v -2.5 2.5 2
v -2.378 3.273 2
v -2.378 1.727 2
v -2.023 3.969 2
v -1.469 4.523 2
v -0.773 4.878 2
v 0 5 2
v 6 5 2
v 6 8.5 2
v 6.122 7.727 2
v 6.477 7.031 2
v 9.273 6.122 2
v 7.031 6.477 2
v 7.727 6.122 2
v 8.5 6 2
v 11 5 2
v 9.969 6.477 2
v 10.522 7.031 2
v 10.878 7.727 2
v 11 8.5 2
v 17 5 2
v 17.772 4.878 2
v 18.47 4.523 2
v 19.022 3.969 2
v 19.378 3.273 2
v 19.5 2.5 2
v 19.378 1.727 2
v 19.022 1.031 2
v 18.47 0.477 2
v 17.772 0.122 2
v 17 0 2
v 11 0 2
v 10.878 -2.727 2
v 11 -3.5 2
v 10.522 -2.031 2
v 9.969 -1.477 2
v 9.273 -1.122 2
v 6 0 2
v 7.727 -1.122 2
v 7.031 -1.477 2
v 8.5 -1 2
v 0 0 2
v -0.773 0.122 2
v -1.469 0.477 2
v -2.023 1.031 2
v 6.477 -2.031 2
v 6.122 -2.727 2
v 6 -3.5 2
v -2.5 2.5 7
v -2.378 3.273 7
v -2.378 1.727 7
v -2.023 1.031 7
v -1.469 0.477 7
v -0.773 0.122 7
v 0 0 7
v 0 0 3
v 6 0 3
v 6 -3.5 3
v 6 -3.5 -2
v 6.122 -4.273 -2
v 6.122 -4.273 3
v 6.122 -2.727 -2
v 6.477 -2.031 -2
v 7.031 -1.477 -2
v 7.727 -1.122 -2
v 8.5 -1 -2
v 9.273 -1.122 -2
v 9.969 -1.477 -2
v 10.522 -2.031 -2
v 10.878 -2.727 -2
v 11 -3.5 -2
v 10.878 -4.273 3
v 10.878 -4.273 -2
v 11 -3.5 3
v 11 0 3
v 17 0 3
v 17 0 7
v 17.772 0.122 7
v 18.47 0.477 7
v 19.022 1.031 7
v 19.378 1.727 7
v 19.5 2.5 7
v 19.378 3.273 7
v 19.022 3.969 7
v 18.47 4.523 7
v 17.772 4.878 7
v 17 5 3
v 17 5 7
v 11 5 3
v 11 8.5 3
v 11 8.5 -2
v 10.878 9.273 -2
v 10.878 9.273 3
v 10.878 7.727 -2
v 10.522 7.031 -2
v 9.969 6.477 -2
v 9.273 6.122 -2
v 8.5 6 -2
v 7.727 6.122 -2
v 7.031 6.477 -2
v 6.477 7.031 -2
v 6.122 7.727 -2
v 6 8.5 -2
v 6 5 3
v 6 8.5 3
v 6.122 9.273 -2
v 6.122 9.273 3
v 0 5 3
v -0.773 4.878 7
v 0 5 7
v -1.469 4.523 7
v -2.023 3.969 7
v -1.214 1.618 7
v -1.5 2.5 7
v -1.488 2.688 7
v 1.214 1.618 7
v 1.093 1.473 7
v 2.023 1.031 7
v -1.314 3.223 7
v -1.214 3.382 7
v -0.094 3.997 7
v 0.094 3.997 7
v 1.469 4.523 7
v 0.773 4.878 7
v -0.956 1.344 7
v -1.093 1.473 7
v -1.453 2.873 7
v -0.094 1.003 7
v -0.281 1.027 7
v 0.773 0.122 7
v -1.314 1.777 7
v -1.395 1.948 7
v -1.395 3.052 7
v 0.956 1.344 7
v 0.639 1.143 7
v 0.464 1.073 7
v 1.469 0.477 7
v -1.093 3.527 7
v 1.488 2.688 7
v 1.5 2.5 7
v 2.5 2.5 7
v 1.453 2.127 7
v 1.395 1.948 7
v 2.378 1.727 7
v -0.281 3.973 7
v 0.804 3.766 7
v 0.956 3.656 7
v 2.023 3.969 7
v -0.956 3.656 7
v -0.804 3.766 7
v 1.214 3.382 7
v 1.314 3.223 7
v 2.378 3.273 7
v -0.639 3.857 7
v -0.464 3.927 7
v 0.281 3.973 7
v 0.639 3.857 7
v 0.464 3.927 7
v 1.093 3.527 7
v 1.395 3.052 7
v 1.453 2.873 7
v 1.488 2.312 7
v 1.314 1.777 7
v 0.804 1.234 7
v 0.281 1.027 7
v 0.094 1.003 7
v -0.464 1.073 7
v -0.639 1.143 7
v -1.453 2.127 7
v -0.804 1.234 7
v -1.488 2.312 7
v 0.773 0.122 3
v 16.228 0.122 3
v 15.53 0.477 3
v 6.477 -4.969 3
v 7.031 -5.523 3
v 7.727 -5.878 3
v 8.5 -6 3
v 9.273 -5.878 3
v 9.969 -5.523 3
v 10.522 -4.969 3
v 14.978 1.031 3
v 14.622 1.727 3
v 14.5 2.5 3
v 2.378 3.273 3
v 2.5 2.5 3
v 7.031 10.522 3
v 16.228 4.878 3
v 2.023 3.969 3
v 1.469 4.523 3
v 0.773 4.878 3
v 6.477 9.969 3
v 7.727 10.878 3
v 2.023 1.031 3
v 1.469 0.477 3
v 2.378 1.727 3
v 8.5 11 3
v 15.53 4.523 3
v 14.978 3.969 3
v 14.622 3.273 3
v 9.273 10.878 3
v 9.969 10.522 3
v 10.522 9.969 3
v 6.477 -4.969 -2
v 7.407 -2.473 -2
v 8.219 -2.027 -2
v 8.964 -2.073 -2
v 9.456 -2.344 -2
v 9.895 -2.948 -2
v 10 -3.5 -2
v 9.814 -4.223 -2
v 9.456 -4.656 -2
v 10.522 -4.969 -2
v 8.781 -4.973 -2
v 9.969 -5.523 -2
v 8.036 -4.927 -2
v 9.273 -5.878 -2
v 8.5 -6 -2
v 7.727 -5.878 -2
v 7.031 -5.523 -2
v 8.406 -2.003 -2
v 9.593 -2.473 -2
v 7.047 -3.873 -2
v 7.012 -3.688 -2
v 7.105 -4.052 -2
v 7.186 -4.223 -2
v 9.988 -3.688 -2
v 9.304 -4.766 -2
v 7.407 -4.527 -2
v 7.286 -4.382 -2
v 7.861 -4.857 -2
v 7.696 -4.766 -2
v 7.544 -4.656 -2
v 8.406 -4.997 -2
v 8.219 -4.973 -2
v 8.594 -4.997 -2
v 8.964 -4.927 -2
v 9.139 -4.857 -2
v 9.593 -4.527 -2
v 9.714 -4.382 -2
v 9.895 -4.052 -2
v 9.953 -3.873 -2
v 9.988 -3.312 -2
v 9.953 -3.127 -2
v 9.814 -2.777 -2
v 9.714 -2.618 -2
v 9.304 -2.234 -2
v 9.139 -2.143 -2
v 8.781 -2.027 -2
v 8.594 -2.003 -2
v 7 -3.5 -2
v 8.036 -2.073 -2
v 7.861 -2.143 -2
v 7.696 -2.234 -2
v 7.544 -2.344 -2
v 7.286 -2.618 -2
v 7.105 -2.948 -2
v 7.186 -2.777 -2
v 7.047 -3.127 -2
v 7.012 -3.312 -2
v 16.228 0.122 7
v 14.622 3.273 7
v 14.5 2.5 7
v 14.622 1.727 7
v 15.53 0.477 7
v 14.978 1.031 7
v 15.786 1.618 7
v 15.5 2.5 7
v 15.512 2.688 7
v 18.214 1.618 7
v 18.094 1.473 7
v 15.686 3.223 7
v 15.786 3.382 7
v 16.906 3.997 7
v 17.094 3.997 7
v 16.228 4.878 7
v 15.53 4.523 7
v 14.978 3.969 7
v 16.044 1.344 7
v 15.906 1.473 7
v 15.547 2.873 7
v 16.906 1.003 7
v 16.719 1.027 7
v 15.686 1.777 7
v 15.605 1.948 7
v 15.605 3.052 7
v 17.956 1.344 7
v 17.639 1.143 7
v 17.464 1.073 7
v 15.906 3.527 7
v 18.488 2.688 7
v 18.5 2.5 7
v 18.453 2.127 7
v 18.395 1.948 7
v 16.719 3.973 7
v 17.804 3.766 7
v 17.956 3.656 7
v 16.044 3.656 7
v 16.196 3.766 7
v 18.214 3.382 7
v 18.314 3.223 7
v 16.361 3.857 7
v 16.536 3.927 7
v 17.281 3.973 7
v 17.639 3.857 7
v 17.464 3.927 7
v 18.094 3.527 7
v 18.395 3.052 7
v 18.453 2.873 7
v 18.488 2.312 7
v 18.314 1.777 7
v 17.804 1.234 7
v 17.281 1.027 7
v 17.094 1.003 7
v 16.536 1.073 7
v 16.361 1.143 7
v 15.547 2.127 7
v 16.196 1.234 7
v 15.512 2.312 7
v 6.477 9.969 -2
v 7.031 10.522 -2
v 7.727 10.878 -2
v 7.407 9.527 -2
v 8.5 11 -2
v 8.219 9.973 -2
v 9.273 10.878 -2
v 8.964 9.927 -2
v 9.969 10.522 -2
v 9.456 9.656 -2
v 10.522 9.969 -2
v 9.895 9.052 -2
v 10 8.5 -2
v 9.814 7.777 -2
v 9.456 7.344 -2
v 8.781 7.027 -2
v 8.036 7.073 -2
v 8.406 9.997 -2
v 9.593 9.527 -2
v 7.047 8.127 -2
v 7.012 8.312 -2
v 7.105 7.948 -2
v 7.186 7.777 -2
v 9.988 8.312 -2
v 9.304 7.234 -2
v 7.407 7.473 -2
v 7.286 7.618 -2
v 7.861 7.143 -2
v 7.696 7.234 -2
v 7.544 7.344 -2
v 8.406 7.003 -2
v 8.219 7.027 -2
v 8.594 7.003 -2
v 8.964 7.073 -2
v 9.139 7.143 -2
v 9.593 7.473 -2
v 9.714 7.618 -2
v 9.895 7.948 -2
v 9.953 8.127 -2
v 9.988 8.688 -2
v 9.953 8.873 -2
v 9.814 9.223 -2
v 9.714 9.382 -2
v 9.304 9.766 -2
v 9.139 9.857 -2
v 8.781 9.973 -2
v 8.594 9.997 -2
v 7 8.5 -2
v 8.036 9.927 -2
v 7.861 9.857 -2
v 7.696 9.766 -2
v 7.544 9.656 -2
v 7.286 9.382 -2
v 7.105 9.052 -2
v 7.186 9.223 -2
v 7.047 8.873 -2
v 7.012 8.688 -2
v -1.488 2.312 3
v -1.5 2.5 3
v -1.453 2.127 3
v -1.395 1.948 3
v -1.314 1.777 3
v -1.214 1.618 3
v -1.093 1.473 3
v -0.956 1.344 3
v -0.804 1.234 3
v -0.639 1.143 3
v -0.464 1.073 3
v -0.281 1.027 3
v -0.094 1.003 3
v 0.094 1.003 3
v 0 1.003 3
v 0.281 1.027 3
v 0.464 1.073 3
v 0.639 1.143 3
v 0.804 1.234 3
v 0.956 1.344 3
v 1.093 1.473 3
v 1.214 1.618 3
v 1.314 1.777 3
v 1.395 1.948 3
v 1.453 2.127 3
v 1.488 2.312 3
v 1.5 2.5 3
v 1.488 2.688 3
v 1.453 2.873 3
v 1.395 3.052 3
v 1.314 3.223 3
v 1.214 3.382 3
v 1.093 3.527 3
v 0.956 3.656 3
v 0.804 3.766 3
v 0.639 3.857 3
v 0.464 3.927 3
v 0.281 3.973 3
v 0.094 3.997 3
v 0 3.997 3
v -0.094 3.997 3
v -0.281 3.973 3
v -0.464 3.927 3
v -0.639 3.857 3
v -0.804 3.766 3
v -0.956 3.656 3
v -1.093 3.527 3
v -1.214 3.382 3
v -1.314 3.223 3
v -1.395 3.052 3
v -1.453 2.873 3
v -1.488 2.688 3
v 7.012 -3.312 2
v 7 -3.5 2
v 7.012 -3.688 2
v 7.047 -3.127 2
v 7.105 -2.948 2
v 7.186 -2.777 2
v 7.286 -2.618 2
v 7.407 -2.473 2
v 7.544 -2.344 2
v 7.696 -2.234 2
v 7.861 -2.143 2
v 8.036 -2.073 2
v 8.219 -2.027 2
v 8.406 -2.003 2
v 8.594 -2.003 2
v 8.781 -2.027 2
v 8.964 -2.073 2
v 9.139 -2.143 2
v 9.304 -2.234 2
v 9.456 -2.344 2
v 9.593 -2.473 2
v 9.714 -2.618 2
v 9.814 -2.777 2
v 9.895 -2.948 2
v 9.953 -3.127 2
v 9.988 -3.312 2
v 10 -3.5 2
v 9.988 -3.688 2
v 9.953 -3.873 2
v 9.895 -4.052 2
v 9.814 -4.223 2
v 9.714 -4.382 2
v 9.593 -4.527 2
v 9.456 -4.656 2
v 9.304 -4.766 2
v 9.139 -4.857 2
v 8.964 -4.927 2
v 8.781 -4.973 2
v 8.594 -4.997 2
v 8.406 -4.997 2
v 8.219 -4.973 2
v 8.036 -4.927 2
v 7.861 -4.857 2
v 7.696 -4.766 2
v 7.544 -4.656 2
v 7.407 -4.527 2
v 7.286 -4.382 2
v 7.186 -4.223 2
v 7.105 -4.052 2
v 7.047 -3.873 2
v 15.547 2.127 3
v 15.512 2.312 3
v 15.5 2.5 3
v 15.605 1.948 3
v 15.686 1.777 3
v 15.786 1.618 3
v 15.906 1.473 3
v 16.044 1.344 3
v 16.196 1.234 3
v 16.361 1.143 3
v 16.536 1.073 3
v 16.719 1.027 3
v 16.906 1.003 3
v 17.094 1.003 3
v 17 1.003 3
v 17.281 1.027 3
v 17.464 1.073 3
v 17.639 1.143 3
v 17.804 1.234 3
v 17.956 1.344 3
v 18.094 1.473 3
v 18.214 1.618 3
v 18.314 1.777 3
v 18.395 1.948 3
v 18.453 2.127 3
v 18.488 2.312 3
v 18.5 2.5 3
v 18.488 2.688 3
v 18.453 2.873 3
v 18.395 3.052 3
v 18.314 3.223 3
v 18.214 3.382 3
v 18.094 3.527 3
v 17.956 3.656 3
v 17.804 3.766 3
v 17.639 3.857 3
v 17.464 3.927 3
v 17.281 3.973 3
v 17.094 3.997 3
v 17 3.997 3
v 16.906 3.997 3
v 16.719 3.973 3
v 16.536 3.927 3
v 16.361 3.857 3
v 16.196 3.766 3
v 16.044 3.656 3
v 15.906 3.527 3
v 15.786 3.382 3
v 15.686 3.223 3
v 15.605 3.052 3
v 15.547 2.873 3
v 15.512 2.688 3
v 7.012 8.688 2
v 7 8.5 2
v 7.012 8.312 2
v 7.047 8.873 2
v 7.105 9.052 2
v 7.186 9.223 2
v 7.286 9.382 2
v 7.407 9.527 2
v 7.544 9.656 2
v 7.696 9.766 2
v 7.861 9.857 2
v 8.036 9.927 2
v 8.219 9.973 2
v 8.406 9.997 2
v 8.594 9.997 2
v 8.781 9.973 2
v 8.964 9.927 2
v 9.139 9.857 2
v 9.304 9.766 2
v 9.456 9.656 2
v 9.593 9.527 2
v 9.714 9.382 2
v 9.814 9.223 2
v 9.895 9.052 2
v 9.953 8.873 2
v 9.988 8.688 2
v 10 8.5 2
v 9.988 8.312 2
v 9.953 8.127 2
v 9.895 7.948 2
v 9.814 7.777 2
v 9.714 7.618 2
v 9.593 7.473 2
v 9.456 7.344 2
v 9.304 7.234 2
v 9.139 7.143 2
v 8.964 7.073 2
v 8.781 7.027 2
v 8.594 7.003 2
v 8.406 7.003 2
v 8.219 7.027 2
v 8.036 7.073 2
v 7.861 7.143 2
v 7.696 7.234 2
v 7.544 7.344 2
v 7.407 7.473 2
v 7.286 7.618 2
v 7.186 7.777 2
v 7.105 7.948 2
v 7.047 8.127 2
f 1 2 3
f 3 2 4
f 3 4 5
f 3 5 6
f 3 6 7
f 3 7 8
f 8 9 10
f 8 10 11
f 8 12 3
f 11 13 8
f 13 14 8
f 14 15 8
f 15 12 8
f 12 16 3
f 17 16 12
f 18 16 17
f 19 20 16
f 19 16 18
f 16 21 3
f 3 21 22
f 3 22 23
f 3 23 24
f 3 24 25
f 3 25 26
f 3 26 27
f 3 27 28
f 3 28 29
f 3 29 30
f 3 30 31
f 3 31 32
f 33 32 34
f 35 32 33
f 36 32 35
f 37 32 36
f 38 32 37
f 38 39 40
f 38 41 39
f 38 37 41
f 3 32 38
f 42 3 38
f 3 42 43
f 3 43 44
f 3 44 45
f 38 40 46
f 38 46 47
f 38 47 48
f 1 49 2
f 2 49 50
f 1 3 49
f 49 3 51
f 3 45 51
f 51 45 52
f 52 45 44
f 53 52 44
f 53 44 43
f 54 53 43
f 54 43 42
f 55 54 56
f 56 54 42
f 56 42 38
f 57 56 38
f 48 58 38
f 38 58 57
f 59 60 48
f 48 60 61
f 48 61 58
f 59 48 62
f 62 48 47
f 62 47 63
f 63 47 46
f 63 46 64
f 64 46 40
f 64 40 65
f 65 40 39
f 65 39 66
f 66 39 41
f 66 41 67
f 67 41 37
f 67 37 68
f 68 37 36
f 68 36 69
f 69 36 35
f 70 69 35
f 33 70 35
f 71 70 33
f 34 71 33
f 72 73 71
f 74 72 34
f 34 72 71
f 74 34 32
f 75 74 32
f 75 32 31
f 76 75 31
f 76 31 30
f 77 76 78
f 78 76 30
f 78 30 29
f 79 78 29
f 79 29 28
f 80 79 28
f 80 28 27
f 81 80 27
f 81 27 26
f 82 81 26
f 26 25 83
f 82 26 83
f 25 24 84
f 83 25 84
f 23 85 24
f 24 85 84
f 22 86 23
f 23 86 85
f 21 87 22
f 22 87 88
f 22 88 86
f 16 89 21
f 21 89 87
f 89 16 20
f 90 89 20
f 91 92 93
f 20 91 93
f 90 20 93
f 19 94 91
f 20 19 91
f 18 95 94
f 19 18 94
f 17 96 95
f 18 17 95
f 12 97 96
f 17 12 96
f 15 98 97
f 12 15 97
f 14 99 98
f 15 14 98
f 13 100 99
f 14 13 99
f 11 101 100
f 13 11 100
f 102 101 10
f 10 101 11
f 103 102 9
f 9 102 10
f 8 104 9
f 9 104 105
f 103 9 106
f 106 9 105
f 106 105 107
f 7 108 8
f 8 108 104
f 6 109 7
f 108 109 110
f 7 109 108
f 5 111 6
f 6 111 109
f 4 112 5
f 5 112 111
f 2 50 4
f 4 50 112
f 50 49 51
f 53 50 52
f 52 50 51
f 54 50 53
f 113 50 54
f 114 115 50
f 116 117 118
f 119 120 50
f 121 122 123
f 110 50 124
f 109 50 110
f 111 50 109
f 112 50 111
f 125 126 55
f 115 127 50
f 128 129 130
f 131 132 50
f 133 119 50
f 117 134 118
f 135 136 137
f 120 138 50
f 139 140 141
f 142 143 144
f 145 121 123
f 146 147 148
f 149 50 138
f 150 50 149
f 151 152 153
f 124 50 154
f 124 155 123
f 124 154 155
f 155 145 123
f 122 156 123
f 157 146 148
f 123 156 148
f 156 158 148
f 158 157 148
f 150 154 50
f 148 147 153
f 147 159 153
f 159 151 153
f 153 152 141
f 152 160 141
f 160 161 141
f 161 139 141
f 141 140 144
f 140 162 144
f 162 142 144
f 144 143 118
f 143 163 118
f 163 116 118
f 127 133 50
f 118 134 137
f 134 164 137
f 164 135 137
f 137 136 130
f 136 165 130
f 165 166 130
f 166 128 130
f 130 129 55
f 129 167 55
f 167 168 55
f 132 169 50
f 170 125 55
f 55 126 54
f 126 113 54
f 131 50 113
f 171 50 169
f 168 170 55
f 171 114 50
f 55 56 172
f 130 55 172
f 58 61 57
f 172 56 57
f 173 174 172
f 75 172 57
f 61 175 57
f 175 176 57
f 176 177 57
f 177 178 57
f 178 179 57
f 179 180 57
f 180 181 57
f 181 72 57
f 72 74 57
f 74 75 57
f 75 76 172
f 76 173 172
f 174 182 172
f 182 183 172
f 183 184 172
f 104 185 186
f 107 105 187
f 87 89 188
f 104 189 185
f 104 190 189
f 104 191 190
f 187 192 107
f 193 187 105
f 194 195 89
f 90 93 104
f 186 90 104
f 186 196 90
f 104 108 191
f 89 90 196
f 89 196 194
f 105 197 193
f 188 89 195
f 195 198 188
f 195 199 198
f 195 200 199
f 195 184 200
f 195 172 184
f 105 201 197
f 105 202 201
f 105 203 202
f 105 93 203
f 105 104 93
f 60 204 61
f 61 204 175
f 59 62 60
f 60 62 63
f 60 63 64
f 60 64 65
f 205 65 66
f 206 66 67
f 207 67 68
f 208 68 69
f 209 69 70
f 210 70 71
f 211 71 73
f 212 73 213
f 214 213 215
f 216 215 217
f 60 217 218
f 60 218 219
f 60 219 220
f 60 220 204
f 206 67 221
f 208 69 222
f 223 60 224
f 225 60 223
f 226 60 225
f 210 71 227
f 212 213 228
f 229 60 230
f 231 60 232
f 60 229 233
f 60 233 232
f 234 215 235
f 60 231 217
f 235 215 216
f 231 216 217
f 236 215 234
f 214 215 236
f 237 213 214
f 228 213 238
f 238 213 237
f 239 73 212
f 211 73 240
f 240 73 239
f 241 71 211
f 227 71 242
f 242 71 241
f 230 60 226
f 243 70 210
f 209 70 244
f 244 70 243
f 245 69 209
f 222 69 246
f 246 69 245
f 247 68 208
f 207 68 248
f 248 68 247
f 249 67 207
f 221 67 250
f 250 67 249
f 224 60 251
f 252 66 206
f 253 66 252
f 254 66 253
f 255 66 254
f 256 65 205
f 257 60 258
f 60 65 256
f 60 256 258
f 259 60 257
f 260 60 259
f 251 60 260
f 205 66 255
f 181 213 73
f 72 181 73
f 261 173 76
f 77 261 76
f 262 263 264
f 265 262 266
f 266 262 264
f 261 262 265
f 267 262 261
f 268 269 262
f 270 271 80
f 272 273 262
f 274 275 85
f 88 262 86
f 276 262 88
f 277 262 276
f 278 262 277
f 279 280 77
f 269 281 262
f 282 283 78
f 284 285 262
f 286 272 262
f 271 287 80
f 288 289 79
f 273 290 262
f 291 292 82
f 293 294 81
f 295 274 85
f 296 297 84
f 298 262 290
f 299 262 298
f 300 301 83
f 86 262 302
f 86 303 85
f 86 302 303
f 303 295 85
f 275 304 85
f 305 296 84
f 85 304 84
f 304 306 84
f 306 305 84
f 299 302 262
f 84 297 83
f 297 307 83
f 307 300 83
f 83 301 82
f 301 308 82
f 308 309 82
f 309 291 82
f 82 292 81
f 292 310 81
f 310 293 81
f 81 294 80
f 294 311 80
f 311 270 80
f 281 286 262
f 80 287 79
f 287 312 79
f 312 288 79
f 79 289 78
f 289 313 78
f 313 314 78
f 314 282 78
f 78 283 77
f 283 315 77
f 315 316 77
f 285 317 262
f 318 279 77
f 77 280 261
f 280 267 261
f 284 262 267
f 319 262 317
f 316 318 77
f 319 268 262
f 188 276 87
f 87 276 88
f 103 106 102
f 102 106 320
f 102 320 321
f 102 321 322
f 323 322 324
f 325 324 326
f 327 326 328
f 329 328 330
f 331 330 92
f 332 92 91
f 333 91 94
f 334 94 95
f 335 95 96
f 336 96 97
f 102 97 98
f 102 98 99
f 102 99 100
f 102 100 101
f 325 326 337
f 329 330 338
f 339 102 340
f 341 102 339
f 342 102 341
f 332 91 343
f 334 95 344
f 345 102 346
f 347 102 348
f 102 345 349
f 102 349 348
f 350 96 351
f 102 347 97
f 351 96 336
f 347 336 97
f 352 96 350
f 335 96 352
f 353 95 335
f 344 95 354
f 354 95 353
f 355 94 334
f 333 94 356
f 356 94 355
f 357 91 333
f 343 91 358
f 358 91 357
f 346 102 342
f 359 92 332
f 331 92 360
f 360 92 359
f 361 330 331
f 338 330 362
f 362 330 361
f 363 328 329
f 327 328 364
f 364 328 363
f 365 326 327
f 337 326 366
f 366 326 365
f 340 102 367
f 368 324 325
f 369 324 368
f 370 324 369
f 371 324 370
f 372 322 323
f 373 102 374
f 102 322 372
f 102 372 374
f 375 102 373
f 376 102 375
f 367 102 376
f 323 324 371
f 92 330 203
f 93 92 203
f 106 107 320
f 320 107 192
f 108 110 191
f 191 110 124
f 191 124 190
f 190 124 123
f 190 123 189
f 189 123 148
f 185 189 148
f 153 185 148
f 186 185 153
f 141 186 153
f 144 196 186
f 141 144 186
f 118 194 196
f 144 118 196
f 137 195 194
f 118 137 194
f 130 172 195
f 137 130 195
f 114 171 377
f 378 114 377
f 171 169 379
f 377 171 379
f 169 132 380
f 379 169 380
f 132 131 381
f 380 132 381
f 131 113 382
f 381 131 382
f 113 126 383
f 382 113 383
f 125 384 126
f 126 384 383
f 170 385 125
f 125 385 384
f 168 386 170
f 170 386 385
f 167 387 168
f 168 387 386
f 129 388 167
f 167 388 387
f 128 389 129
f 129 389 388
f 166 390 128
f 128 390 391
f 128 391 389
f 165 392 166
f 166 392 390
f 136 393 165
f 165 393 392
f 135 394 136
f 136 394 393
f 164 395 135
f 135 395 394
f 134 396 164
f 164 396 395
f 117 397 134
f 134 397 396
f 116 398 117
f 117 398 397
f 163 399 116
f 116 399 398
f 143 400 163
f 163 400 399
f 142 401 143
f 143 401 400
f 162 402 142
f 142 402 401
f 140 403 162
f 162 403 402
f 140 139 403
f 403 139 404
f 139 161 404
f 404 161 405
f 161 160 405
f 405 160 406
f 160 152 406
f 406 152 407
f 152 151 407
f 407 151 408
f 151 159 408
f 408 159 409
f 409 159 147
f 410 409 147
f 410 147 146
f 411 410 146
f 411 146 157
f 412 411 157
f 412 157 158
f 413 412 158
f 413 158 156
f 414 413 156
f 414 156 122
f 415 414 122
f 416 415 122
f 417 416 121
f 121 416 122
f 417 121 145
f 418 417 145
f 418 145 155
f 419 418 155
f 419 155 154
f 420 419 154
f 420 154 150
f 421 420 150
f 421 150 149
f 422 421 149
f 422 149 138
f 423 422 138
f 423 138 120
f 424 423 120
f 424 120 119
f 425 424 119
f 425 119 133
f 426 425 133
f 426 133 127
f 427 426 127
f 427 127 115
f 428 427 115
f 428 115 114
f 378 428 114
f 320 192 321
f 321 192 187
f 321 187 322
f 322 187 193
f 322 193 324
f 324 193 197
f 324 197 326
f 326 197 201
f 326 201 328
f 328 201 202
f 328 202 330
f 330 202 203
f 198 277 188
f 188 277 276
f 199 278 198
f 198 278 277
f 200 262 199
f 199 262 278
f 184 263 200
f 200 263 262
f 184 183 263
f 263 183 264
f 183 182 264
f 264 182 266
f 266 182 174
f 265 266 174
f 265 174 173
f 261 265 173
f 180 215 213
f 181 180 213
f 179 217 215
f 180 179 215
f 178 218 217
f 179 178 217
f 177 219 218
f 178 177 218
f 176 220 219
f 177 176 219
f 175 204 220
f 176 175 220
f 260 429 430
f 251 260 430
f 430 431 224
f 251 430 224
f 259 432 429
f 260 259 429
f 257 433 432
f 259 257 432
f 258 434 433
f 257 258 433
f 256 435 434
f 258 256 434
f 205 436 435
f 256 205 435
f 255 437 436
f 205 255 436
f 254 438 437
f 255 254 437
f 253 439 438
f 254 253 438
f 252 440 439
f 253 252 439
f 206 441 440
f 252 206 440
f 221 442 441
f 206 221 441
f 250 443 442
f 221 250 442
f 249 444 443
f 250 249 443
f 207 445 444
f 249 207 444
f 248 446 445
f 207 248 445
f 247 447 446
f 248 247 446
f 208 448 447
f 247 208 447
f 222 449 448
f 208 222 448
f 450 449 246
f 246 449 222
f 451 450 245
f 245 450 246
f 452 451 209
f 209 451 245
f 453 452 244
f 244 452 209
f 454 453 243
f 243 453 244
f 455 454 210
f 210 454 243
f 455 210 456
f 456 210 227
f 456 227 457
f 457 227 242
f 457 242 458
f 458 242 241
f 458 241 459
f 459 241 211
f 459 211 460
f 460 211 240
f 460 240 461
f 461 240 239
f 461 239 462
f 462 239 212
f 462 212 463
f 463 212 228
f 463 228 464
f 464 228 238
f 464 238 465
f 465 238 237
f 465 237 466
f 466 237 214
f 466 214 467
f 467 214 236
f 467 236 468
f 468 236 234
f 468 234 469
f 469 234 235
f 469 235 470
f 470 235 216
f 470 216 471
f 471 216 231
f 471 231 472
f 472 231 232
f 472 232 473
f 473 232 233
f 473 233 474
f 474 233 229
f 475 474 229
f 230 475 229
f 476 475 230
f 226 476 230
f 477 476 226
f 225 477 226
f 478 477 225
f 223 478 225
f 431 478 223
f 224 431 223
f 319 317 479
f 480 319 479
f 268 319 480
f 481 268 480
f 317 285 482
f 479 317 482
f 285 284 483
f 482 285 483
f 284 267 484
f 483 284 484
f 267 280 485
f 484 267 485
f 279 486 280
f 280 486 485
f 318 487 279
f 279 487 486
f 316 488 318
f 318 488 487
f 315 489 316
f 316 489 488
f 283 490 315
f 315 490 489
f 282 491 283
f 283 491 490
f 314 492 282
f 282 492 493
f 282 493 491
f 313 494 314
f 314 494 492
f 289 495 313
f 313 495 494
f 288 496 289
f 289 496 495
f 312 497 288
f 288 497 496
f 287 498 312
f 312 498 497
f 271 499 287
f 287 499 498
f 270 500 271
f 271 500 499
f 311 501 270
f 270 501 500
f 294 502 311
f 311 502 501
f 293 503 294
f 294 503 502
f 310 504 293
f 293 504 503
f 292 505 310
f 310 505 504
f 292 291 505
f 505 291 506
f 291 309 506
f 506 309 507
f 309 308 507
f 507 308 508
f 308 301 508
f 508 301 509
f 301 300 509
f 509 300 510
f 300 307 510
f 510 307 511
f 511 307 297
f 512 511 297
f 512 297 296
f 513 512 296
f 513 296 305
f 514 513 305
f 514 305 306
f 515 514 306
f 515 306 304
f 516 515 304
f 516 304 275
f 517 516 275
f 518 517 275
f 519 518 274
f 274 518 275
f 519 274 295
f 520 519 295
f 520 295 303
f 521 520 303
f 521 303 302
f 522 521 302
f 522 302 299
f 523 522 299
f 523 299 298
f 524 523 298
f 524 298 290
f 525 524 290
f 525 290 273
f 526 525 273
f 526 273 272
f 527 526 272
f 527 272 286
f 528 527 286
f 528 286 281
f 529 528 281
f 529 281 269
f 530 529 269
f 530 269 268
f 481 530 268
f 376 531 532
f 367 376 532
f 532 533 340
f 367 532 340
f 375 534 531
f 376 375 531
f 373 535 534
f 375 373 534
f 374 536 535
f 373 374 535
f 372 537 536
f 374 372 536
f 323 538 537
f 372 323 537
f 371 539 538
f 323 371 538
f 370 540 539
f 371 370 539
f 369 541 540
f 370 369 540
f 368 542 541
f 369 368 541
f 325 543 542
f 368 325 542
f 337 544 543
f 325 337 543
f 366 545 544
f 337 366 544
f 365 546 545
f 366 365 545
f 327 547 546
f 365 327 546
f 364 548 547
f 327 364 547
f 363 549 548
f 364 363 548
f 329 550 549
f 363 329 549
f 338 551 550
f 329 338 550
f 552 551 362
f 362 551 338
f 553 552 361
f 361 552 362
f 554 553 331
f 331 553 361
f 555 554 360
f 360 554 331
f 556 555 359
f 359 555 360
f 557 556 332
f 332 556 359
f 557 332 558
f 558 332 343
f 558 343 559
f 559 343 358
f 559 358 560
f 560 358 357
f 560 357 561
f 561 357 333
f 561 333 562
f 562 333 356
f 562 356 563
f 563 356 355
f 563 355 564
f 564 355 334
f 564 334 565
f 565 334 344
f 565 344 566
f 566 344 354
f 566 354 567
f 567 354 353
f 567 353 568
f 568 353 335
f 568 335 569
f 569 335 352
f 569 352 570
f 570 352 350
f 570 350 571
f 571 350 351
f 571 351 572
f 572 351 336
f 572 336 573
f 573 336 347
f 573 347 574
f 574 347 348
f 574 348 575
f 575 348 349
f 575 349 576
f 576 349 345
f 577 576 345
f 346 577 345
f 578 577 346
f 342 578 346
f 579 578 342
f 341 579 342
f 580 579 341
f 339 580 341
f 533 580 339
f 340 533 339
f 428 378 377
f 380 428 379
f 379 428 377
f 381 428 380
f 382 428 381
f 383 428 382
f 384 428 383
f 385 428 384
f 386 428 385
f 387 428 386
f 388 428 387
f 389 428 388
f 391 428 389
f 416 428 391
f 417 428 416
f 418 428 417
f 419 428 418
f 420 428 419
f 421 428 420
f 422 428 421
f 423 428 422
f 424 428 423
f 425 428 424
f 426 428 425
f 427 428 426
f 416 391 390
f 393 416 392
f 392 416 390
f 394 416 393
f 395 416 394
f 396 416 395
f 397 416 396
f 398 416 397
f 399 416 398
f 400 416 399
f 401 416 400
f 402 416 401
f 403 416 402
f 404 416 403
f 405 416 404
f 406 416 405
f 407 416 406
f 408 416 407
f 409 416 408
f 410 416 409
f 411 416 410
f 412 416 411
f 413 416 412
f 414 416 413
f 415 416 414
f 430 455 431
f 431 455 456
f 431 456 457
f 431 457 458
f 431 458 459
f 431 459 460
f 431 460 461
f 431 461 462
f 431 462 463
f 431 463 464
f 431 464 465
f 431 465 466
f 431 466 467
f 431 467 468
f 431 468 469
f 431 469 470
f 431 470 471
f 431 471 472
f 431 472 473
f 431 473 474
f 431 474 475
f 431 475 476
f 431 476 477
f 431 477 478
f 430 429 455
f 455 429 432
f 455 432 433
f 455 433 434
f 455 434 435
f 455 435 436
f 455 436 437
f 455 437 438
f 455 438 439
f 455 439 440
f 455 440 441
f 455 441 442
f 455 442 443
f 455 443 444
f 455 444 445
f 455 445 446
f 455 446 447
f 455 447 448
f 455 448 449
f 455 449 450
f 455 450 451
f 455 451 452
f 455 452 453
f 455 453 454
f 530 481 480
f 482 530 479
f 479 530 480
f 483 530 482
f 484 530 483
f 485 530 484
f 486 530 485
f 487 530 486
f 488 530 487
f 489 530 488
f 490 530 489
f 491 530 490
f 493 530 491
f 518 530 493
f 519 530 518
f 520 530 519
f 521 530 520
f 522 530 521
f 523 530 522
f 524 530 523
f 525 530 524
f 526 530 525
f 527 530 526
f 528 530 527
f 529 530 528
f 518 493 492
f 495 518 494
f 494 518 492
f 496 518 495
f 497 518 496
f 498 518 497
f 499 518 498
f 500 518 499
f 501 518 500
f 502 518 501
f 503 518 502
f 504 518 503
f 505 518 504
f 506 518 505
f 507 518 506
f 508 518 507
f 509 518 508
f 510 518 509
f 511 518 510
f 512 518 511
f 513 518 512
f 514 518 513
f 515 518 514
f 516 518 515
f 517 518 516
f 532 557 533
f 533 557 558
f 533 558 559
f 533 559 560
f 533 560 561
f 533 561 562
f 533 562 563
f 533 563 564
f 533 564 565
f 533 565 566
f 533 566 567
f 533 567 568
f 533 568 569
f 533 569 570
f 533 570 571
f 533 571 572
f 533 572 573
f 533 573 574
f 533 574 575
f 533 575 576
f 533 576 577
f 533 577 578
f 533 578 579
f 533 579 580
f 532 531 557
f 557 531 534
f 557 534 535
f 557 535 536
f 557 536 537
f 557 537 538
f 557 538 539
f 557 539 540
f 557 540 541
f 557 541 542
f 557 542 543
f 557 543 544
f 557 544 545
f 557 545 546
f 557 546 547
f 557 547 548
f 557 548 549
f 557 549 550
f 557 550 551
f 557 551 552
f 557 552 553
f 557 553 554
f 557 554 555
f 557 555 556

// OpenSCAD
translate([0, 0, 2]) {
	cube([17, 5, 1]);
	difference() {
		translate([0, 2.5, 0]) cylinder(h = 5, d = 5, $fn = 20);
		translate([0, 2.5, 1]) cylinder(h = 5, d = 3, $fn = 50);
	}

	difference() {
		translate([17, 2.5, 0]) cylinder(h = 5, d = 5, $fn = 20);
		translate([17, 2.5, 1]) cylinder(h = 5, d = 3, $fn = 50);
	}
}

translate([6, -3.5, 0]) {
	translate([0, 0, 2]) cube([5, 12, 1]);

	difference() {
		translate([2.5, 0, -2]) cylinder(h = 5, d = 5, $fn = 20);
		translate([2.5, 0, -3]) cylinder(h = 5, d = 3, $fn = 50);
	}

	difference() {
		translate([2.5, 12, -2]) cylinder(h = 5, d = 5, $fn = 20);
		translate([2.5, 12, -3]) cylinder(h = 5, d = 3, $fn = 50);
	}
}
